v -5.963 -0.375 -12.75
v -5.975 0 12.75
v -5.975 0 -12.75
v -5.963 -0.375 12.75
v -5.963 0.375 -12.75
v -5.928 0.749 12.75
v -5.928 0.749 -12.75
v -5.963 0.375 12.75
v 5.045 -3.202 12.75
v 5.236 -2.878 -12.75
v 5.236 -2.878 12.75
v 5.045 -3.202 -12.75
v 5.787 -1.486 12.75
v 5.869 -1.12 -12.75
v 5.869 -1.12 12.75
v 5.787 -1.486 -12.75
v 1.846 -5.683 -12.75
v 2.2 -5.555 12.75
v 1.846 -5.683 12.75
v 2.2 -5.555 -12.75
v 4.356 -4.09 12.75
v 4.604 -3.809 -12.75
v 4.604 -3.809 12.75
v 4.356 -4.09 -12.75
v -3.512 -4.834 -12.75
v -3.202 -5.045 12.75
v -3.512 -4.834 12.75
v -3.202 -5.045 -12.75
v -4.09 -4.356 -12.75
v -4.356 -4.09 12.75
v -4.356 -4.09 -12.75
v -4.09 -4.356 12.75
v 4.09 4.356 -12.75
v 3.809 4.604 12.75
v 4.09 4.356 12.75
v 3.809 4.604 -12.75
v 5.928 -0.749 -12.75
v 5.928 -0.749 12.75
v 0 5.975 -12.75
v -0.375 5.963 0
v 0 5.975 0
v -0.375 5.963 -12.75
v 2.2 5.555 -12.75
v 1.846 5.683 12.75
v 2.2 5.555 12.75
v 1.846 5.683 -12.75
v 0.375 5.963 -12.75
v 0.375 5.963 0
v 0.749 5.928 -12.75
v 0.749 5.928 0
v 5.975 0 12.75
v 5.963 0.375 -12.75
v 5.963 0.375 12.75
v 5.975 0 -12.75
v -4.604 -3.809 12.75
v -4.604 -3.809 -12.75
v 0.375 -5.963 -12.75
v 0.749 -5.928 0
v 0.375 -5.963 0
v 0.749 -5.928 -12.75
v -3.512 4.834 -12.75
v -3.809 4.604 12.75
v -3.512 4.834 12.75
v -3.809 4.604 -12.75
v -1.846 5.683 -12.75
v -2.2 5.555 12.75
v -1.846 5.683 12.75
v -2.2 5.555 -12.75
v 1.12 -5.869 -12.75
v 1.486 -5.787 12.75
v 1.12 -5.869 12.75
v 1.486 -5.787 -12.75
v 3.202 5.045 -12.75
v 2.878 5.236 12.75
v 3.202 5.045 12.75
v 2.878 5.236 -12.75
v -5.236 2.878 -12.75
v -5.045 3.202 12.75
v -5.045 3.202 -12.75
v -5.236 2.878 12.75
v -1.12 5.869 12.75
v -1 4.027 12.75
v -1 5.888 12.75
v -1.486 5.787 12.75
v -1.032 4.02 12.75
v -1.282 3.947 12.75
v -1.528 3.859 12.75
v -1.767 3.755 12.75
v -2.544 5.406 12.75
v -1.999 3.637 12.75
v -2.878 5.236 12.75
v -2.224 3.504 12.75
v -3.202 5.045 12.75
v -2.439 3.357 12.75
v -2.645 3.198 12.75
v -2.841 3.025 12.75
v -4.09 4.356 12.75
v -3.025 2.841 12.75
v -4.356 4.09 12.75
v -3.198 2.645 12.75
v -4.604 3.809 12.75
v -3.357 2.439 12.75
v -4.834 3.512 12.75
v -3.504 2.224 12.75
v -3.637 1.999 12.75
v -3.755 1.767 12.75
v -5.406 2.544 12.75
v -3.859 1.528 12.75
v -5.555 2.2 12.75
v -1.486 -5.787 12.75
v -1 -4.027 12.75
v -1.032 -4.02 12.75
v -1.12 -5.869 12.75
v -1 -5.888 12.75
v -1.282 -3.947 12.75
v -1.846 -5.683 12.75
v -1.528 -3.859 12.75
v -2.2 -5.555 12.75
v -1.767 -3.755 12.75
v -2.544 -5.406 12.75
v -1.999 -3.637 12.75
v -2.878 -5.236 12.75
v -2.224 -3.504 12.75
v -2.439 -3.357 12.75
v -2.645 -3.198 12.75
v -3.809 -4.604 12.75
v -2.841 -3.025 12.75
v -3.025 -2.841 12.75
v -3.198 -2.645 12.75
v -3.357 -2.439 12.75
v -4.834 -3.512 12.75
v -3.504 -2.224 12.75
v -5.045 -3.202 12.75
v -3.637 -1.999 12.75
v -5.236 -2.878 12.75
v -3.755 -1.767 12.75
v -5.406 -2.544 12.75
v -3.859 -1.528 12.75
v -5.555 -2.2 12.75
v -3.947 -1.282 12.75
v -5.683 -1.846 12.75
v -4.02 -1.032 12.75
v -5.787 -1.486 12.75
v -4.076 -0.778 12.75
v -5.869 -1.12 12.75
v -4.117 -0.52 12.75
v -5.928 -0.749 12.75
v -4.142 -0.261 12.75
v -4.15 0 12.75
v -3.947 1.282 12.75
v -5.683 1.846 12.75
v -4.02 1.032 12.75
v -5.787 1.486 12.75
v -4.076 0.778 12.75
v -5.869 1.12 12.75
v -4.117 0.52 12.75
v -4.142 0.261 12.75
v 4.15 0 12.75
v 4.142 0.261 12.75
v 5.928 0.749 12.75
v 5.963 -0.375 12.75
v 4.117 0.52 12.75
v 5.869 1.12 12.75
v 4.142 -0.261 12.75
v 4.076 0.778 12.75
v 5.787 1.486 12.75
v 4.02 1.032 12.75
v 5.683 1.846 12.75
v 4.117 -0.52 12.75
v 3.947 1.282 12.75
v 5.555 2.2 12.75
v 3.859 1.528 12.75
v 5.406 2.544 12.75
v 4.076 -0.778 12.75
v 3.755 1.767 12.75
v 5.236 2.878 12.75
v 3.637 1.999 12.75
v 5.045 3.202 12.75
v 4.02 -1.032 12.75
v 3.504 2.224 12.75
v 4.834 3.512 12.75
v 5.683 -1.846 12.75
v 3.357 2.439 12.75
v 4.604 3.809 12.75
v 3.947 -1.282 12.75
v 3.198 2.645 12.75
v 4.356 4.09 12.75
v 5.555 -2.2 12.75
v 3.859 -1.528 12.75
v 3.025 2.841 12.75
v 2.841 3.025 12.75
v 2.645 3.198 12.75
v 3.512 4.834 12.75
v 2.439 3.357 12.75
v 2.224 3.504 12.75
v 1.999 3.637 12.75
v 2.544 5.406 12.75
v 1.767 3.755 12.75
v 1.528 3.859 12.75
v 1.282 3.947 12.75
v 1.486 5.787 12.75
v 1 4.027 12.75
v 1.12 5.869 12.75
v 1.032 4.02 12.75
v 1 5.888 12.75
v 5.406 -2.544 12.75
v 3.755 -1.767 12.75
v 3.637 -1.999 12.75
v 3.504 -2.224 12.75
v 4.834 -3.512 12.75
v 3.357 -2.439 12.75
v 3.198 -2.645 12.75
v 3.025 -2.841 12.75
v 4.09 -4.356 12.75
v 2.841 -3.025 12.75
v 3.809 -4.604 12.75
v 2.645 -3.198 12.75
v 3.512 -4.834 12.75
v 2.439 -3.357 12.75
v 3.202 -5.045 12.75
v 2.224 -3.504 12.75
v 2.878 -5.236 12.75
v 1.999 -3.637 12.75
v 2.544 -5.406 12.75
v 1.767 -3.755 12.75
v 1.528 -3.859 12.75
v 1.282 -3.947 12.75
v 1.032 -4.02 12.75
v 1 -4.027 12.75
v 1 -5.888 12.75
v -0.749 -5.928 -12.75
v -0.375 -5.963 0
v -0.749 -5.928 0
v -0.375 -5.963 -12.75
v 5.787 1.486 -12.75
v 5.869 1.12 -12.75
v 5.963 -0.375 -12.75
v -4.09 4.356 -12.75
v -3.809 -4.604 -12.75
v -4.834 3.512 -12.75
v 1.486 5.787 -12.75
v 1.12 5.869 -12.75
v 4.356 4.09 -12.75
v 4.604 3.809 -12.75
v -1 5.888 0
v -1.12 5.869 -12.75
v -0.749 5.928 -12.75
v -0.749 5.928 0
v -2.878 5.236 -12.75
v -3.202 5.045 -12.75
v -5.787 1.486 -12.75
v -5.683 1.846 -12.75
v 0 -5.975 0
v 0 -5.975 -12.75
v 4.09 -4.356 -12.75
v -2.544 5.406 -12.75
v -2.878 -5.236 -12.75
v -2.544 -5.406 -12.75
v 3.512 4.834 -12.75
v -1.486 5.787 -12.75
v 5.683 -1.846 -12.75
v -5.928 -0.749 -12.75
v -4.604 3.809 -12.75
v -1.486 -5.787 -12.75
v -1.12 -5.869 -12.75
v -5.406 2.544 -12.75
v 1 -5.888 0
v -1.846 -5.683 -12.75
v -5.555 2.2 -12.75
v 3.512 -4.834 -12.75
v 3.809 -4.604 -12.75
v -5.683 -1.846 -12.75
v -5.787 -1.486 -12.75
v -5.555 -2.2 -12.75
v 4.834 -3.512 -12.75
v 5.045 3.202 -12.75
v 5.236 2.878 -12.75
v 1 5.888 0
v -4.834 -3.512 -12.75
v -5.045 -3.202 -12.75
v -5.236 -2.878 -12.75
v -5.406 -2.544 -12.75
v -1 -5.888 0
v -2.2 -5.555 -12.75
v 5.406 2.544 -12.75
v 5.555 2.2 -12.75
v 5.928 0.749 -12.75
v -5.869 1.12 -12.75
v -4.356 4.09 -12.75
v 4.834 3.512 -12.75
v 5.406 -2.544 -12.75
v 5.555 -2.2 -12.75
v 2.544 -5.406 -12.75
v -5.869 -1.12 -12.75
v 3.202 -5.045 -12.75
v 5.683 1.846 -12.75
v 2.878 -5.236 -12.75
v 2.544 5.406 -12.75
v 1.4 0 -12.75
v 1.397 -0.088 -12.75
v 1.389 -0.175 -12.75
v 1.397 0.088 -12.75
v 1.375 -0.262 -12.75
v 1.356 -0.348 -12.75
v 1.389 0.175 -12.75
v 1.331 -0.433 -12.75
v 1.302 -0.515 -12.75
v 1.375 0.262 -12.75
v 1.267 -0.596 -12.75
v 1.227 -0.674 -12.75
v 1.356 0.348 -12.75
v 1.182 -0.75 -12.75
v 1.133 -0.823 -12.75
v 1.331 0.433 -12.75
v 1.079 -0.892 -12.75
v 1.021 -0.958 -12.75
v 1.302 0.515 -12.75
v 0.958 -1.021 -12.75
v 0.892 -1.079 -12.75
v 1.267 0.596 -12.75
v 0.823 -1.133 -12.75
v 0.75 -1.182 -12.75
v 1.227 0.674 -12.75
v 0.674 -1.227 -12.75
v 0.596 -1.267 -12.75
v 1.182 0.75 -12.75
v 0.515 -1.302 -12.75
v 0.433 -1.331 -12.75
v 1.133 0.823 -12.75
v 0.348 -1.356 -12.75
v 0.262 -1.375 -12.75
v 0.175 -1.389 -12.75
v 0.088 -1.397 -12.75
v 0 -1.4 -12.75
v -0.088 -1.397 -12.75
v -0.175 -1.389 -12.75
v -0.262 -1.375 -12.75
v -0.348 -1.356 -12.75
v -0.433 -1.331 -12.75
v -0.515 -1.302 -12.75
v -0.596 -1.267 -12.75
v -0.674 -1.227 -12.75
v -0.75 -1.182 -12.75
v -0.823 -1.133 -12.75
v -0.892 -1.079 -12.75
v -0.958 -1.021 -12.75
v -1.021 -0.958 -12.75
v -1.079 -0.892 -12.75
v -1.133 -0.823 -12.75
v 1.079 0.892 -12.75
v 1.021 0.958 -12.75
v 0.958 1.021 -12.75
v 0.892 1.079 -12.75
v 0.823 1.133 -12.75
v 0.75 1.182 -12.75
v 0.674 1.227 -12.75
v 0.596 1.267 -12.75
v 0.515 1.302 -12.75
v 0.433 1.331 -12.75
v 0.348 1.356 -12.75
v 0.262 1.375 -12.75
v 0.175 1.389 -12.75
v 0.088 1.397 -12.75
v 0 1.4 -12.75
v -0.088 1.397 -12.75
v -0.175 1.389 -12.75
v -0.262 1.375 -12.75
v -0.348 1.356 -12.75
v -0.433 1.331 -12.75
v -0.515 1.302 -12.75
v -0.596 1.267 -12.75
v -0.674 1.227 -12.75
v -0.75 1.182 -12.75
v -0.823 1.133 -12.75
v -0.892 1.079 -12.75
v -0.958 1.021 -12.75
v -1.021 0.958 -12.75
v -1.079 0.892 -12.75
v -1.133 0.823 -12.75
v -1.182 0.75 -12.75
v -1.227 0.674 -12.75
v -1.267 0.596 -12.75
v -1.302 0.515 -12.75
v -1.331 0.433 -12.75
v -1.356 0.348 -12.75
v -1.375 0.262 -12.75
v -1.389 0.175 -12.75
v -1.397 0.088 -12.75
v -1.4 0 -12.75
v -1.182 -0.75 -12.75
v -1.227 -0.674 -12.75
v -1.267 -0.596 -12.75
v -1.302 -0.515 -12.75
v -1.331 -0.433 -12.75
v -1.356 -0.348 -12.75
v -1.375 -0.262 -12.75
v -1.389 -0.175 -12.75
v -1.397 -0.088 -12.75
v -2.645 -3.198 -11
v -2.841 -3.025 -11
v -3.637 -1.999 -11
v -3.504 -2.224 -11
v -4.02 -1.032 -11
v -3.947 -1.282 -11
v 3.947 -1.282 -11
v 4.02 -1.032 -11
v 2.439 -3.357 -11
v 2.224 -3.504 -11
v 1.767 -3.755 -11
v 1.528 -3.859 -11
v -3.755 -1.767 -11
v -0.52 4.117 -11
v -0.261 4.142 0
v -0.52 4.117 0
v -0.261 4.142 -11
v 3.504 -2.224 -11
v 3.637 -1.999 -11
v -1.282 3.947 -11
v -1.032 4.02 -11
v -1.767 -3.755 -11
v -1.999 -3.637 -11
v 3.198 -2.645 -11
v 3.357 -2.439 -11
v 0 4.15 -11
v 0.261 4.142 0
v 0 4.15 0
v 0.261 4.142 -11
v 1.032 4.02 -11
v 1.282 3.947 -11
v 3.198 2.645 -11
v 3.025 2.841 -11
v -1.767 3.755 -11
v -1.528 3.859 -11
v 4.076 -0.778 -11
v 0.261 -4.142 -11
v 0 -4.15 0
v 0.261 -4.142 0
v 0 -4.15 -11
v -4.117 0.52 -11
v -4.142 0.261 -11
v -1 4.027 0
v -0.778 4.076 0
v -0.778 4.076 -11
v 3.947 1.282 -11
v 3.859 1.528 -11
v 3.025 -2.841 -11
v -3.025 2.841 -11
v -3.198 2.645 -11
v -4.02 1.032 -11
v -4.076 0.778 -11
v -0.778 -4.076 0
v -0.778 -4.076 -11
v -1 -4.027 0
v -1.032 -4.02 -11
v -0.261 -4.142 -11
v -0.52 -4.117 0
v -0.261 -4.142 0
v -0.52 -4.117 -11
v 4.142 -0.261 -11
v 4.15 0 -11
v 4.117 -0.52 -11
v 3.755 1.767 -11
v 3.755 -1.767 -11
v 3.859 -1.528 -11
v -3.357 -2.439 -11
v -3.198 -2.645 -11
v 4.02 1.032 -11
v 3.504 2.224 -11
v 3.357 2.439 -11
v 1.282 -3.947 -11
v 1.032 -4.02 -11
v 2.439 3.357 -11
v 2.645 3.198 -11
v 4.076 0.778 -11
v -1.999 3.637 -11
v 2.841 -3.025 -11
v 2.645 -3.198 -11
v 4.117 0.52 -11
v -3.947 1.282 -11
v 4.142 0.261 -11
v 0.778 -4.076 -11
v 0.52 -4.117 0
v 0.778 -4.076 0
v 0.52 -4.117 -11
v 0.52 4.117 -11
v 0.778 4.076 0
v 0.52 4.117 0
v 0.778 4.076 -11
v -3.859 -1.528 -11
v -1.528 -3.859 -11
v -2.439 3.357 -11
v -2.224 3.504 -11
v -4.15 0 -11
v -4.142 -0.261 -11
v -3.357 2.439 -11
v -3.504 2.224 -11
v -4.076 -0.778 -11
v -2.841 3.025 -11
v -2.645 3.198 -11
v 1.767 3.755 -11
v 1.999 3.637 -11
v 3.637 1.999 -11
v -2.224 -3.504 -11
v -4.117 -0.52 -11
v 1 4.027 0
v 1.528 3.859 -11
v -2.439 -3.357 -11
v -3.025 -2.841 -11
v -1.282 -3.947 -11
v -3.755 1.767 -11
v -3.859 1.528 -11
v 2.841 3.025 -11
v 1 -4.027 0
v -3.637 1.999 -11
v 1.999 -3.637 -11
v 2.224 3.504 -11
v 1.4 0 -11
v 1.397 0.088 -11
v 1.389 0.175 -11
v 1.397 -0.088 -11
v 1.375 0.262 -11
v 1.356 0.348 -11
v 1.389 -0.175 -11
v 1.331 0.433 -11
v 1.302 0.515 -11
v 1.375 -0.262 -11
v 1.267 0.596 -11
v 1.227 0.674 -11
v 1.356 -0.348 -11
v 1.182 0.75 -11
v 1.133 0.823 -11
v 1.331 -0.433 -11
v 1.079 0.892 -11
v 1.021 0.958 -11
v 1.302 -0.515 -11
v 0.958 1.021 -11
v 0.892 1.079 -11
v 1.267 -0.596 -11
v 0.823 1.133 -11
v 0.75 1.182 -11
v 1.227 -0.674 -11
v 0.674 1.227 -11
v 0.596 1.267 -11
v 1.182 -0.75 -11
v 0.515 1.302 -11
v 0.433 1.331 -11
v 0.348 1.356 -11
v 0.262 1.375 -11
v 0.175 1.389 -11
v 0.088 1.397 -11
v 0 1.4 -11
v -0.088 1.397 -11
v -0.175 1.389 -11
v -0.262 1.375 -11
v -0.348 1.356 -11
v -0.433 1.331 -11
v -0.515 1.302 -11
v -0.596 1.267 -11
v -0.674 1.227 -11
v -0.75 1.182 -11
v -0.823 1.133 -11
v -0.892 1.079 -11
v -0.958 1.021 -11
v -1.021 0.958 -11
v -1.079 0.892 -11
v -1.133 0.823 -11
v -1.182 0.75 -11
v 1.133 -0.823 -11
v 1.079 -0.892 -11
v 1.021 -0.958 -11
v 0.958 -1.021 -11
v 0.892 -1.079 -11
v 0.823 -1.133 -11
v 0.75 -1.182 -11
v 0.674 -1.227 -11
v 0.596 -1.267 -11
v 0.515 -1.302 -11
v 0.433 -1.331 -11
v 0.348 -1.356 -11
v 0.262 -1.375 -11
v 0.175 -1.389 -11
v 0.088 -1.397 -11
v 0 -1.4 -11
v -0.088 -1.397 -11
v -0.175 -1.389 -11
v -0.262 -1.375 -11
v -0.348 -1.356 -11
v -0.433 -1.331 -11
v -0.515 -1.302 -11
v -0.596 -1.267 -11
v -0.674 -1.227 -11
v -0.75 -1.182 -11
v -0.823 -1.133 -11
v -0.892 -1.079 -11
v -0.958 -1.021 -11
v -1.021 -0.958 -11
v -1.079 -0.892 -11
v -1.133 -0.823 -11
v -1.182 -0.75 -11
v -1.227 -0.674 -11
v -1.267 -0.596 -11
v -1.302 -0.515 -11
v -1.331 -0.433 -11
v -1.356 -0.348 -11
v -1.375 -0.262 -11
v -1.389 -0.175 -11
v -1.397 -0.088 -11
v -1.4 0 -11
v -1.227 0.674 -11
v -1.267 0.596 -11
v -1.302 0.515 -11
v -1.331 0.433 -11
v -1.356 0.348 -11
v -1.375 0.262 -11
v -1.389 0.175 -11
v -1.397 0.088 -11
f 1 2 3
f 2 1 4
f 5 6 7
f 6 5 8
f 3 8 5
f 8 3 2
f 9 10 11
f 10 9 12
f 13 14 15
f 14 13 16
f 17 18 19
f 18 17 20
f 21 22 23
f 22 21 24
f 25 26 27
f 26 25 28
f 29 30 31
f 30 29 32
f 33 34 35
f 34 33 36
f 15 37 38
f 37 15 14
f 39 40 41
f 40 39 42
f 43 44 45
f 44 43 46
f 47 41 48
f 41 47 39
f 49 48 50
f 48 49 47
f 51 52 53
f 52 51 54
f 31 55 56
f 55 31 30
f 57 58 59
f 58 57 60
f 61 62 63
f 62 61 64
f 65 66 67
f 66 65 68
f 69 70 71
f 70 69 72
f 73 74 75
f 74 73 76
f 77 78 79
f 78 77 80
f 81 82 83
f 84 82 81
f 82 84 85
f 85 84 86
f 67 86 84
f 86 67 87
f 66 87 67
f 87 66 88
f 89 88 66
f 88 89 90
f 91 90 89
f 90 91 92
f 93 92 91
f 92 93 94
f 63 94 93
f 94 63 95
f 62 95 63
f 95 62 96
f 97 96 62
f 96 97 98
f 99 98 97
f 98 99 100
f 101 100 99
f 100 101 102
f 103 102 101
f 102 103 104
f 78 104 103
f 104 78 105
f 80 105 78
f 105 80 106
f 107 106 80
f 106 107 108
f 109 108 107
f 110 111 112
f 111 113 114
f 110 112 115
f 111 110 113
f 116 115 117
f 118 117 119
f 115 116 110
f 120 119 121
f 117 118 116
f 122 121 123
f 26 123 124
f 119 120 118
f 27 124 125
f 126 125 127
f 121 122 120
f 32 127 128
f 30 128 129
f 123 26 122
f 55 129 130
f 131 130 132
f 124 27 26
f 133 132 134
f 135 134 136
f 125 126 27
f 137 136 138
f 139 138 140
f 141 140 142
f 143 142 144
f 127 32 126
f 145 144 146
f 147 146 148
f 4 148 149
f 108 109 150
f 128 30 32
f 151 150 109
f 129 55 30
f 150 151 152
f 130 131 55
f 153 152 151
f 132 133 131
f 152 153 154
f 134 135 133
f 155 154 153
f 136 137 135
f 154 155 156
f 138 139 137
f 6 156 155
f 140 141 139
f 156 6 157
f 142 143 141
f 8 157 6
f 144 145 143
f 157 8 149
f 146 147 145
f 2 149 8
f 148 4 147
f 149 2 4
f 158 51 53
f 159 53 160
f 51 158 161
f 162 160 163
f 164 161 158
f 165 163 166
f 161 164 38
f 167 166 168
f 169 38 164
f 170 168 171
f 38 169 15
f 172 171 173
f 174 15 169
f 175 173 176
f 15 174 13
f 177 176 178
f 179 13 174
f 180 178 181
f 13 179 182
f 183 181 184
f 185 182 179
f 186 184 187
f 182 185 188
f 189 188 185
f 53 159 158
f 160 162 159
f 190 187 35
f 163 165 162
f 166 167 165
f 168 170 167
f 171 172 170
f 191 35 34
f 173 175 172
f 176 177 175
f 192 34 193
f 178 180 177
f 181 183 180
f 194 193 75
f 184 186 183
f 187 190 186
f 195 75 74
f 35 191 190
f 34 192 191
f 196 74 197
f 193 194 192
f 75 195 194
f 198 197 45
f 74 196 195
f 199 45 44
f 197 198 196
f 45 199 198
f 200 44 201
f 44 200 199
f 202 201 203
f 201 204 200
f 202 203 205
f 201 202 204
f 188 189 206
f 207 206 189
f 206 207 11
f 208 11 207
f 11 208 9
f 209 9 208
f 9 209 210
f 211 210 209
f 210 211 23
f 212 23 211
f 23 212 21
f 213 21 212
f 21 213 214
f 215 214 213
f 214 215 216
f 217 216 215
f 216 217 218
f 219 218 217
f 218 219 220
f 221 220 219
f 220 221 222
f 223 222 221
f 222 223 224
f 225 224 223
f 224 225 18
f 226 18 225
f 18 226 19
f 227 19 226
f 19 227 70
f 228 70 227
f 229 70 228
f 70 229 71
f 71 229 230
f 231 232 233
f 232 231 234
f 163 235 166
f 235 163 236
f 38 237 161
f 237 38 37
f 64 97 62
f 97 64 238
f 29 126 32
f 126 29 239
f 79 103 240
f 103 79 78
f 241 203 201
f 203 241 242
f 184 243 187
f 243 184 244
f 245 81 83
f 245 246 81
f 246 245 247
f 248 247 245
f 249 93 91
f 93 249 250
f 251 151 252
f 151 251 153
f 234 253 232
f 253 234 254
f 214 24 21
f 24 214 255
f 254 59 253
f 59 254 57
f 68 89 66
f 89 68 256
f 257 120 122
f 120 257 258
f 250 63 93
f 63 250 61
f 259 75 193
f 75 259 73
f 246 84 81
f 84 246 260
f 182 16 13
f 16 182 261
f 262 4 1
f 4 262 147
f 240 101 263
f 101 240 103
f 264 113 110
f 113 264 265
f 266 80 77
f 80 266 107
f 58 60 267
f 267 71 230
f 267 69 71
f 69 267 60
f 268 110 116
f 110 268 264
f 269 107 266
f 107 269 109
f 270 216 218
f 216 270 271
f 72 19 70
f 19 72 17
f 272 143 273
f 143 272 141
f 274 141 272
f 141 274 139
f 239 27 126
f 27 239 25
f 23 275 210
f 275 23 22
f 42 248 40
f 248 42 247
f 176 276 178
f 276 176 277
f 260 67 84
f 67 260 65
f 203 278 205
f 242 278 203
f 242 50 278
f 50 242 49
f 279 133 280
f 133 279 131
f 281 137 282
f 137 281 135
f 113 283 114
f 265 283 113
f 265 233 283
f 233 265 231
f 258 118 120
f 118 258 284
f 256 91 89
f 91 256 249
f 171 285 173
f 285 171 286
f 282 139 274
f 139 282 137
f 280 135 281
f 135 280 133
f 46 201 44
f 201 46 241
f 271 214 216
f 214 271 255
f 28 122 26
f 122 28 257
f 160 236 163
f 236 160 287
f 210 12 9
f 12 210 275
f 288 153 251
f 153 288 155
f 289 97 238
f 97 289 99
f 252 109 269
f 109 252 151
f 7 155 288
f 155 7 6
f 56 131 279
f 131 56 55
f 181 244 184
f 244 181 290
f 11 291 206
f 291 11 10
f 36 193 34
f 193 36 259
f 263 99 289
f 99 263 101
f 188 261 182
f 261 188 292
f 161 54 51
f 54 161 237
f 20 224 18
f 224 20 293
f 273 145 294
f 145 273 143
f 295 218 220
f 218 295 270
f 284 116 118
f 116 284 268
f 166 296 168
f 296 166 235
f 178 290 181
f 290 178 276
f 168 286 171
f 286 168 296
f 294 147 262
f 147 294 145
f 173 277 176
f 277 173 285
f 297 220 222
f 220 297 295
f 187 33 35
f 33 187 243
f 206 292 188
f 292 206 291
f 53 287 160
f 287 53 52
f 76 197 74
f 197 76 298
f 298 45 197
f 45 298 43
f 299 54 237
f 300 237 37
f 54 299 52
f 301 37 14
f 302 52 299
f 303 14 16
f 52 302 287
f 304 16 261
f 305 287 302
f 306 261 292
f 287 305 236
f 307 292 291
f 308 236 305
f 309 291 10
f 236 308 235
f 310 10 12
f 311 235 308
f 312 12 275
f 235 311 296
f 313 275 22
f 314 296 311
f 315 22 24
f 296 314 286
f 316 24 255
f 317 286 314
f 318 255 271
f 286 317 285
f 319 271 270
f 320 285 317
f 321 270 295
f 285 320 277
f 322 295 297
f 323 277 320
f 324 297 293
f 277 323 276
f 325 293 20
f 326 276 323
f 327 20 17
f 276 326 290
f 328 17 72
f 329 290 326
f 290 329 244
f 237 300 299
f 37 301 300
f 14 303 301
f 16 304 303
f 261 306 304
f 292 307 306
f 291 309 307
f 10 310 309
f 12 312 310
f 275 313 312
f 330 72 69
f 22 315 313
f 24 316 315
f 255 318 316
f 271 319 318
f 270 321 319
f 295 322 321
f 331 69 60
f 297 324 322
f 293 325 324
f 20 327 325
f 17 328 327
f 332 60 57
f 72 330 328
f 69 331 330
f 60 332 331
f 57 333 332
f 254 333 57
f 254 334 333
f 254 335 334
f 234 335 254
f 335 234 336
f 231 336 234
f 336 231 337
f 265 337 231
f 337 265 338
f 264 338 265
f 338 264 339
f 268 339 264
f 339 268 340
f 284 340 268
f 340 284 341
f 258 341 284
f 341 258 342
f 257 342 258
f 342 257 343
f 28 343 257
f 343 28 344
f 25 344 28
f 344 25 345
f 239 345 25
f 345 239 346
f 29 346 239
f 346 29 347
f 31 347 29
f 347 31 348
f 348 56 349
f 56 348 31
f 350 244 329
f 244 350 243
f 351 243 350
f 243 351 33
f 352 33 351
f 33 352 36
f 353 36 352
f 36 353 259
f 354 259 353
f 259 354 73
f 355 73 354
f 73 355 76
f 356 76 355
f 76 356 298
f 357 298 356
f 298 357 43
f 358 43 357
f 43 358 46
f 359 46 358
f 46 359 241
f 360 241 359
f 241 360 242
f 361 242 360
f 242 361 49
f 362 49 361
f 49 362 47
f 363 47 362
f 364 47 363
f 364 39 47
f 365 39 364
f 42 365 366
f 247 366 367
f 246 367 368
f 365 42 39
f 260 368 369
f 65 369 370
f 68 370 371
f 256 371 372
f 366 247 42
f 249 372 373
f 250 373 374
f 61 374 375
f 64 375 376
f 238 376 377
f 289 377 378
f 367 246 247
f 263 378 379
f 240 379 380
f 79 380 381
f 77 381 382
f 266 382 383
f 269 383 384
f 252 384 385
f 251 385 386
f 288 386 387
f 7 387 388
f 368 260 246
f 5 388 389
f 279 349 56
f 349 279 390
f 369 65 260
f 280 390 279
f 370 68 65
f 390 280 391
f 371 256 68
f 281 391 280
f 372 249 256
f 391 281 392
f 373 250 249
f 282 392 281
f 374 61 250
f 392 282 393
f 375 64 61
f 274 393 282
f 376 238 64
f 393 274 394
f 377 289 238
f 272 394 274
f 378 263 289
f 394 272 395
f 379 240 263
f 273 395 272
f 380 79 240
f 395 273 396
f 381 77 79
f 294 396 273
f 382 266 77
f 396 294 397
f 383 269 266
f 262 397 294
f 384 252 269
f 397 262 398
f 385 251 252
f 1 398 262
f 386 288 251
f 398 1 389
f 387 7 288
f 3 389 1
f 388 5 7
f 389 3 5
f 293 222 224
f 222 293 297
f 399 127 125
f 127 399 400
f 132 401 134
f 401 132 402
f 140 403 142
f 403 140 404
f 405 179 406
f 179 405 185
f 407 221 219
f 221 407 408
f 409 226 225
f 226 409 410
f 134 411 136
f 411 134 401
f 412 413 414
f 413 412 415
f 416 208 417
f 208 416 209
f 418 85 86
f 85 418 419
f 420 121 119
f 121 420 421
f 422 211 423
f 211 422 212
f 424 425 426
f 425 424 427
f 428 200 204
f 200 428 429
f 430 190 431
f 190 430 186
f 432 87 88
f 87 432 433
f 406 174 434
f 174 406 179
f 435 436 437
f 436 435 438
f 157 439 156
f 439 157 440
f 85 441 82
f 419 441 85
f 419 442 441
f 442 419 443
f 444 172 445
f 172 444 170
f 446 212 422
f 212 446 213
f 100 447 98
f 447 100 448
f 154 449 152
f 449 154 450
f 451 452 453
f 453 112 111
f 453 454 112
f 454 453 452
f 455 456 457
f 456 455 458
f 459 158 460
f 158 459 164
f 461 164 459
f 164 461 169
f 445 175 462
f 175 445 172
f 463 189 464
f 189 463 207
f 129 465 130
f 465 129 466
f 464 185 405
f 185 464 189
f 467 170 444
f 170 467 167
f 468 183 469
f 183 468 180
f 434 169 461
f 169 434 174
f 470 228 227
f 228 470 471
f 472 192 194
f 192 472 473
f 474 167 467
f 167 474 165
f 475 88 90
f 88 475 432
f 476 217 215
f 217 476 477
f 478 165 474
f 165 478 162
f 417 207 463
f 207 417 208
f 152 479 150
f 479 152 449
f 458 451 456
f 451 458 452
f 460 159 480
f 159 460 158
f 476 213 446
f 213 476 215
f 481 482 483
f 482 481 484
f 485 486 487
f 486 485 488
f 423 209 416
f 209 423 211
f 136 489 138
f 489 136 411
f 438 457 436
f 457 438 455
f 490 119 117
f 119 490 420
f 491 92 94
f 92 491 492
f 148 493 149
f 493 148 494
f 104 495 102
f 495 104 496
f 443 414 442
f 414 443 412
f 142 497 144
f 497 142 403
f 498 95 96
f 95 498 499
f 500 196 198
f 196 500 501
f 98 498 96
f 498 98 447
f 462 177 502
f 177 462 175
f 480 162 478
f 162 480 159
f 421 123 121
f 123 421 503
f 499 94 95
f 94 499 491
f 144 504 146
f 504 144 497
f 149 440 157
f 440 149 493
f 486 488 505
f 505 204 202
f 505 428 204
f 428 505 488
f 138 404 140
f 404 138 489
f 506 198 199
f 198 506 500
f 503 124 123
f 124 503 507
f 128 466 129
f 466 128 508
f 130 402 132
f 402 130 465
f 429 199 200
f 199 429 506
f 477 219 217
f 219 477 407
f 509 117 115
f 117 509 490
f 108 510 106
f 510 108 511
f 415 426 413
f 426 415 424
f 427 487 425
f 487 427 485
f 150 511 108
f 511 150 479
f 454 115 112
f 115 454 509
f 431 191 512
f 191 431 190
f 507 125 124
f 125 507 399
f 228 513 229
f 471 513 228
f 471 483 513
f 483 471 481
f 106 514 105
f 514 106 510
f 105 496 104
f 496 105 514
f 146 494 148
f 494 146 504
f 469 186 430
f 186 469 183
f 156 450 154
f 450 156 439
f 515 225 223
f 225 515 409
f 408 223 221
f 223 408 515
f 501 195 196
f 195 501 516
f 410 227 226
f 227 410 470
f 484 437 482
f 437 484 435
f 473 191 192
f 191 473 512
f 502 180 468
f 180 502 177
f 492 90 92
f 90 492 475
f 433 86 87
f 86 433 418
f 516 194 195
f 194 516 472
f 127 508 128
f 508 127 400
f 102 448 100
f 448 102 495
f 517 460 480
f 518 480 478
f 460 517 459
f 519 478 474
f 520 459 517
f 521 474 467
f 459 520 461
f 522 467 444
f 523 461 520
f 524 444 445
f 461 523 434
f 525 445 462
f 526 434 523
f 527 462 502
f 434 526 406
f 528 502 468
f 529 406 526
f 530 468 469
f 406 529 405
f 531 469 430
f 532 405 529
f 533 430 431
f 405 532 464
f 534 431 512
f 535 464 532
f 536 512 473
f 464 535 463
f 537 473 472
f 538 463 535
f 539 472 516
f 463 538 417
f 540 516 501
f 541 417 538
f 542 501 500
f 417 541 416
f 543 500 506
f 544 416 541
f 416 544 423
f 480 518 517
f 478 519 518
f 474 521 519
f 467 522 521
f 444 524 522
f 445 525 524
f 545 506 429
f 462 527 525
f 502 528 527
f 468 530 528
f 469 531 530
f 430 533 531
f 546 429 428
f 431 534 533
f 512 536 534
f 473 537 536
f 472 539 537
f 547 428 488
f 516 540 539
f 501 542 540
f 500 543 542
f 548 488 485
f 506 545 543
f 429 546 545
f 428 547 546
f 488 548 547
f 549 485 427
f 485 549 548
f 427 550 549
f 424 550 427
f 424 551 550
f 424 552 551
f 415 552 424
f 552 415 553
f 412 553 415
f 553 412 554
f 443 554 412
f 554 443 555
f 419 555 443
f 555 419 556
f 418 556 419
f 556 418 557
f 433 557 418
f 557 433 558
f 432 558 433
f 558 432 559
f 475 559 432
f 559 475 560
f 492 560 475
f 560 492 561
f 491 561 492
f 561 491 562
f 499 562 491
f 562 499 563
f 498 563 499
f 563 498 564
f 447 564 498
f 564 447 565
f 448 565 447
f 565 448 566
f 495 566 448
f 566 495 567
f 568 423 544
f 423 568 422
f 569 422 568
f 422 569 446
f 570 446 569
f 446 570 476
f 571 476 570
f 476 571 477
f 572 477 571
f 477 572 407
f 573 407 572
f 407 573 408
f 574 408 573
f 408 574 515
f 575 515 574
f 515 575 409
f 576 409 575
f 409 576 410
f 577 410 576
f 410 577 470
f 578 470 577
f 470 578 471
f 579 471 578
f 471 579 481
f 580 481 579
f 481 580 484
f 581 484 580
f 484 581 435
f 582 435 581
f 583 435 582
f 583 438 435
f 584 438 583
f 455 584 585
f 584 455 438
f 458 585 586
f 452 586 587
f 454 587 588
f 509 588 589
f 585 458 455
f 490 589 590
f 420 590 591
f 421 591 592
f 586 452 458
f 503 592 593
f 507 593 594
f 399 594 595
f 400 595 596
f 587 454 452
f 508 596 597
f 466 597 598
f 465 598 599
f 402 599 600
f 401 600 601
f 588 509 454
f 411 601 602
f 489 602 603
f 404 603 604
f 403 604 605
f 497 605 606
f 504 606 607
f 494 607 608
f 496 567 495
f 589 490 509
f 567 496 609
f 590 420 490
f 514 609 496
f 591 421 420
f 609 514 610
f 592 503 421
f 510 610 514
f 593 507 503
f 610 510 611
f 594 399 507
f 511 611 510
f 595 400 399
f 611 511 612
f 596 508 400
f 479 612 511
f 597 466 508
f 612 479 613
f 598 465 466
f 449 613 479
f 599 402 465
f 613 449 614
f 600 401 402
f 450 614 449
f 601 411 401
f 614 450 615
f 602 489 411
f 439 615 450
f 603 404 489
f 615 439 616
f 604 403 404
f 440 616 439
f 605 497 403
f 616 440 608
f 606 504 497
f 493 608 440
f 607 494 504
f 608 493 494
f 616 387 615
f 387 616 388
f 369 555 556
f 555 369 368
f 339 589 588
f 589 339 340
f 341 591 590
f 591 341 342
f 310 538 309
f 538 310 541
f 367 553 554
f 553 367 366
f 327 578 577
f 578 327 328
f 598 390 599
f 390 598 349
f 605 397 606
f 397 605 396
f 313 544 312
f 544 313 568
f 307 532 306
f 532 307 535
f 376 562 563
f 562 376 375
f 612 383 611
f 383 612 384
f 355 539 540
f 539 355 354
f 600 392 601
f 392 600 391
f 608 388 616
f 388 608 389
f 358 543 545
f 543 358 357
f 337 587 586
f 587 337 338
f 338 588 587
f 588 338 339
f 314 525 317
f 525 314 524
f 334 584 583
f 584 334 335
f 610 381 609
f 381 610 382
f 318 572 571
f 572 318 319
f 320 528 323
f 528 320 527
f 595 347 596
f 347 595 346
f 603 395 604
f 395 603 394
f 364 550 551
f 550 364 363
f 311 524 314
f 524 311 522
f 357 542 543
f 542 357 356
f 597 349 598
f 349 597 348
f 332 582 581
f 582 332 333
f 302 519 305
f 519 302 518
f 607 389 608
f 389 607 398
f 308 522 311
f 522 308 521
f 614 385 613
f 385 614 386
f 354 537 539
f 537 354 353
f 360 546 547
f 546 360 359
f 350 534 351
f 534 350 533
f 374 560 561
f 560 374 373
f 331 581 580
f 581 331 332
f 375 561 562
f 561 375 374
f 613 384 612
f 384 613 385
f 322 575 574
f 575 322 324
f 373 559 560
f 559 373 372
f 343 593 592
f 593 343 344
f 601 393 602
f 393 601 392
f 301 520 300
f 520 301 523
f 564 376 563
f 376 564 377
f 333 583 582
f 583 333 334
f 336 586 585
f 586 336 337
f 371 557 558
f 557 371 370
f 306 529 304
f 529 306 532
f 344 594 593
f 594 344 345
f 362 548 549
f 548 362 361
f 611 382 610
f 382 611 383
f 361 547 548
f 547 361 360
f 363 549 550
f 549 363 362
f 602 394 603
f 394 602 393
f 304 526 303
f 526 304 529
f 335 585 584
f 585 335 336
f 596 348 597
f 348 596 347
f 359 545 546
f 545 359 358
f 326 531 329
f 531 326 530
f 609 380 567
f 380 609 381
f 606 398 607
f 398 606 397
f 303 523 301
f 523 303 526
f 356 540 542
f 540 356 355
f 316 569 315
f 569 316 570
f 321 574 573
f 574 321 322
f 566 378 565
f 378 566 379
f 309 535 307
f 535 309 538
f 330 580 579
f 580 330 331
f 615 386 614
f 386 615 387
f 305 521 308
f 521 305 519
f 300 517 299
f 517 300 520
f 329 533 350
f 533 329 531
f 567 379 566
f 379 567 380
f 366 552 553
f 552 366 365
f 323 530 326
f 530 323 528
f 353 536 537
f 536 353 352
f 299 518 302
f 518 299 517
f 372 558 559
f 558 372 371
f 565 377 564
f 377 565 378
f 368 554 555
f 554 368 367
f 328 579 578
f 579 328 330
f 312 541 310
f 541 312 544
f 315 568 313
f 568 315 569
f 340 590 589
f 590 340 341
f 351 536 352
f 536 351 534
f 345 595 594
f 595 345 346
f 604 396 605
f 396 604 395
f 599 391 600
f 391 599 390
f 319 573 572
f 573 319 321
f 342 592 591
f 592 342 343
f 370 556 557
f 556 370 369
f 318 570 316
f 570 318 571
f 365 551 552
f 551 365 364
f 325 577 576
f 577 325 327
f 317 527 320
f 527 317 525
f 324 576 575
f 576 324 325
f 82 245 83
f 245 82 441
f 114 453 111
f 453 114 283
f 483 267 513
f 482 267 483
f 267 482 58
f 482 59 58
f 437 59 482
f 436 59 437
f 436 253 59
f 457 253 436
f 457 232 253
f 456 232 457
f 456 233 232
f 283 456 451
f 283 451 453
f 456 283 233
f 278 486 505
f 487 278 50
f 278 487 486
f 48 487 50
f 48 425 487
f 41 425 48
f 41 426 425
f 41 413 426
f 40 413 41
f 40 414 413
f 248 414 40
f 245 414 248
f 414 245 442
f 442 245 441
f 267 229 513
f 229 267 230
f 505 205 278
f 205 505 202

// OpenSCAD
// file: ../../../shared_helper.scad
// Shared Helper variables and modules

// Variables
quality_value = 100;
$fn = quality_value;

// Screw Holes
m2_hole_diameter = 1.85; // 1.95;
m2_loose_diameter = 2.50;
m2_counter_sink_diameter = 3.80;
m2_counter_sink_length = 2.00;
m2_hole_offset = m2_hole_diameter / 2.0;
m2_hole_height = 100.00;
m2_nut_outer_width = 3.90;
m2_nut_outer_height = 4.40;
m2_nut_outer_depth = 1.50;
// M2_Counter_Sink_Depth

m3_hole_diameter = 2.9; // 2.8
m3_hole_offset = m3_hole_diameter / 2.0;
m3_hole_height = 100.00;
m3_head_diameter = 6.2;
m3_head_depth = 3.0; // 2.5??, 3.0

m4_hole_diameter = 3.85; // 3.90
m4_hole_offset = m4_hole_diameter / 2.0;
m4_hole_height = 100.00;
m4_head_diameter = 7.55;
m4_head_depth = 3.0; // 2.5??, 3.0

// Tolerances
hole_tight_tolerance = 0.05;
hole_loose_tolerance = 0.20;

// Springs
spring_diameter = 5.45;
spring_length = 35.00;

// Nails
brass_nail_diameter = 2.4; // 2.00; // 1.95 at the beginning it tapers
brass_nail_length = 29.54;
brass_nail_head_diameter = 3.20; // 3.00; // oval 2.84 - 3.1 mm
brass_nail_head_depth = 1.80; //1.00; // 1.80; // 2.00;

// General Variables
v_wheel_hole_diameter = 5.20;
v_wheel_offset = (v_wheel_hole_diameter / 2.0) + 2.0;

// Hot-End Holes
stand_off_hole_diameter = m3_hole_diameter;
stand_off_width_distance = 11.60 + stand_off_hole_diameter;

// Magnets
// Small Magnet (Neo)
small_magnet_height = 2.00; // ±2.00 1.97
small_magnet_diameter = 3.00; // ±3.00 // 2.98

// Medium Magnet (Neo)
medium_magnet_height = 2.96; // ±3.00
medium_magnet_diameter = 5.00;

// Large Magnet (ferrite)
large_magnet_height = 2.98; // ±3.00
large_magnet_diameter = 9.79; // ±10.00

// Switches
// D2F Switch
d2f_length = 12.88; // ±12.70
d2f_width = 5.84; // ±5.70
d2f_depth = 6.20; // ±7.00 (5 + 2) ... ±6.50
d2f_pins = 9.00 - 6.50;
d2f_plunger_length = 2.64;
d2f_plunger_width = 0.97; // ±1.00
d2f_plunger_depth = 0.39; // ±0.50
d2f_mount_hole_position = 2.10;
d2f_hole_position_from_centre = 2.85;
d2f_pin_pre_travel = 0.50;
d2f_mount_hole_shift = 4.40 + m2_hole_offset + m2_hole_offset;
d2f_switch_base = 0.2 + 0.7 + 1.50 + 0.55 - 1.0;
d2f_switch_hole_hight = 22.00;
d2f_extra_tolerance_for_switch_holes = 0.12;

// 10t85 Switch
10t85_length = 20.04; // ±19.90
10t85_width = 6.34; // ±6.40
10t85_depth = 10.64; // ±10.70
10t85_plunger_length = 3.28; // ±4.00
10t85_plunger_width = 1.96;
10t85_plunger_depth = 1.30;

// Creality Endstop Board, 2208 V2.0
// creality_endstop_hole_diameter = m3_hole_diameter + hole_loose_tolerance; // Hole is M3 sized but meant for a loose M2
creality_endstop_hole_diameter = m2_hole_diameter + hole_tight_tolerance;
creality_endstop_hole_offset = 15.00;
creality_endstop_board_height = 20.30;
creality_endstop_plug_height_extension = 2.00;
creality_endstop_board_width = 20.20;
creality_endstop_board_thickness = 1.30;
creality_endstop_board_pins_thickness = 3.20 - creality_endstop_board_thickness;
creality_endstop_board_switch_thickness = 8.50 - creality_endstop_board_thickness;
creality_endstop_board_back_space = 2.00; // Taken from the rail mount bracket
creality_endstop_board_back_height = 14.90;
creality_endstop_board_back_width = 16.80;
creality_endstop_back_thickness = 3.30;
creality_endstop_back_hole_wall_spacing = 1.50; //3.00;

// Small Tactile Switch
small_tactile_switch_length = 6.21;
small_tactile_switch_width = 6.17;
small_tactile_switch_depth = 3.18;
small_tactile_switch_plunger_diameter = 3.40;
small_tactile_switch_plunger_depth = 1.40;

// Large Tactile Switch
large_tactile_switch_length = 12.03;
large_tactile_switch_width = 11.95;
large_tactile_switch_depth = 3.12;
large_tactile_switch_plunger_length = 3.75;
large_tactile_switch_plunger_width = 3.70;
large_tactile_switch_plunger_depth = 3.94;

// Button
button_topper_top_diameter = 11.65;
button_topper_bottom_diameter = 12.96;
button_topper_depth = 5.64;
button_topper_bottom_depth = 4.38;

// Belts
// GT2

// Modules
// Creality Mounting Holes
module CrealityCounterSunkHotEndMountingHoles(total_casing_depth, casing_top_extension) {
  // Mounting holes with countersinking - horizontal, through-holes, properly positioned
  cylinder(d=m3_hole_diameter, h=total_casing_depth + 2.00, center=true);
  cylinder(d=m3_hole_diameter, h=total_casing_depth + 2.00, center=true);

  translate([stand_off_width_distance, 0, 0]) {
    cylinder(d=m3_hole_diameter, h=total_casing_depth + 2.00, center=true);
    cylinder(d=m3_head_diameter + hole_loose_tolerance, h=4 + m3_head_depth + 6 + 1.8 + casing_top_extension);
  }
}

module CrealityHotEndMountingHoles(total_casing_depth) {
  cylinder(d=m3_hole_diameter, h=total_casing_depth + 2.00, center=true);

  translate([stand_off_width_distance, 0, 0]) {
    cylinder(d=m3_hole_diameter, h=total_casing_depth + 2.00, center=true);
  }
}

module CrealityEndstopMountHoles(height, include_back_nut_cutout) {
  cylinder(d=creality_endstop_hole_diameter, h=height, center=true);

  translate([creality_endstop_hole_offset, 0, 0]) {
    cylinder(d=creality_endstop_hole_diameter, h=height, center=true);
  }

  if (include_back_nut_cutout) {
    back_depth = m2_nut_outer_depth;

    translate([-2.0, -2.0, 0]) {
      cube([m2_nut_outer_width, m2_nut_outer_height, back_depth]);

      translate([creality_endstop_hole_offset, 0, 0]) {
        cube([m2_nut_outer_width, m2_nut_outer_height, back_depth]);
      }
    }
  }
}

module CrealityEndstopBackSpace(base_cutout_extension) {
  // Smaller gap between screw holes
  translate([creality_endstop_hole_diameter + creality_endstop_back_hole_wall_spacing, 0.0, 0.0]) {
    cube([creality_endstop_board_back_width - 2 * (creality_endstop_hole_diameter + creality_endstop_back_hole_wall_spacing), base_cutout_extension, creality_endstop_back_thickness + 1.0]);
  }

  // Top gap part
  translate([0.0, base_cutout_extension, 0]) {
    cube([creality_endstop_board_back_width, (creality_endstop_board_back_height + base_cutout_extension), creality_endstop_back_thickness + 1.0]);
  }
}

// D2F Switch Mounting
module D2F_Switch_Space() { // Should be used as a negative / difference space
  // D2F Switch Space
  // switch_base = 0.2 + 0.7 + 1.50 + 0.55;
  // switch_base = 0.2 + 0.7 + 1.50 + 0.55 - 1.0;
  switch_base = d2f_switch_base;

  // cube([d2f_depth, d2f_width + 1.05 + 0.75 - 0.95, d2f_length + casing_top_edge_buffer]); // 1.05
  cube([d2f_length, (d2f_width + 2.00) + d2f_pins, d2f_depth]);
}

module D2F_Switch_Mount_Holes() {
  rotate([0, 0, 90]) {
    translate([0.0, d2f_hole_position_from_centre, 0.0]) {
      cylinder(d=m2_hole_diameter + hole_tight_tolerance + (d2f_extra_tolerance_for_switch_holes * 3), h=d2f_switch_hole_hight);
    }

    translate([0.0, -(d2f_hole_position_from_centre + m2_hole_offset), 0.0]) {
      cylinder(d=m2_hole_diameter + hole_tight_tolerance + (d2f_extra_tolerance_for_switch_holes * 3), h=d2f_switch_hole_hight);
    }
  }
}
// main file
// 8mm to 12mm Rod Sleeve Adapter

// This sleeve converts an 8mm linear stainless rod to 12mm mounting holes
// Uses shared_helper.scad for tolerances and quality settings

include <../../../shared_helper.scad>;

revision = 1.6;

// Rod dimensions
inner_rod_diameter = 8.0;
outer_sleeve_diameter = 12.0;
sleeve_length = 25.5; //30.0;  // Adjust as needed // +1.5

// Tolerances
inner_tolerance = (2 * hole_tight_tolerance) + hole_loose_tolerance;    // Tight perfect fit for the 8mm rod
// inner_tolerance = hole_tight_tolerance + hole_loose_tolerance;    // Tight fit for the 8mm rod
outer_tolerance = hole_tight_tolerance;  // Slightly looser fit for the 12mm mounting holes

// Gap parameters for installation
gap_width = 2.0;  // Width of the gap to allow squeezing

// Create the sleeve
rotate([0, 180, 0]) {
  difference() {
    // Outer cylinder
    cylinder(d=outer_sleeve_diameter - outer_tolerance, h=sleeve_length, center=true);

    // Inner hole for 8mm rod
    rotate([0, 0, 180]) {
      translate([0, 0, -sleeve_length + 12.5 - 0.5 -1.0])
      cylinder(d=inner_rod_diameter + inner_tolerance, h=sleeve_length);
    }

    // Small hole to push rod out
    cylinder(d=m3_hole_diameter - 0.1, h=sleeve_length + 1.0, center=true);

    // Gap to allow squeezing for installation
    translate([0, 0, -sleeve_length/2 - 0.5])
    cube([gap_width, outer_sleeve_diameter + 1, sleeve_length + 1], center=true);
  }
}
